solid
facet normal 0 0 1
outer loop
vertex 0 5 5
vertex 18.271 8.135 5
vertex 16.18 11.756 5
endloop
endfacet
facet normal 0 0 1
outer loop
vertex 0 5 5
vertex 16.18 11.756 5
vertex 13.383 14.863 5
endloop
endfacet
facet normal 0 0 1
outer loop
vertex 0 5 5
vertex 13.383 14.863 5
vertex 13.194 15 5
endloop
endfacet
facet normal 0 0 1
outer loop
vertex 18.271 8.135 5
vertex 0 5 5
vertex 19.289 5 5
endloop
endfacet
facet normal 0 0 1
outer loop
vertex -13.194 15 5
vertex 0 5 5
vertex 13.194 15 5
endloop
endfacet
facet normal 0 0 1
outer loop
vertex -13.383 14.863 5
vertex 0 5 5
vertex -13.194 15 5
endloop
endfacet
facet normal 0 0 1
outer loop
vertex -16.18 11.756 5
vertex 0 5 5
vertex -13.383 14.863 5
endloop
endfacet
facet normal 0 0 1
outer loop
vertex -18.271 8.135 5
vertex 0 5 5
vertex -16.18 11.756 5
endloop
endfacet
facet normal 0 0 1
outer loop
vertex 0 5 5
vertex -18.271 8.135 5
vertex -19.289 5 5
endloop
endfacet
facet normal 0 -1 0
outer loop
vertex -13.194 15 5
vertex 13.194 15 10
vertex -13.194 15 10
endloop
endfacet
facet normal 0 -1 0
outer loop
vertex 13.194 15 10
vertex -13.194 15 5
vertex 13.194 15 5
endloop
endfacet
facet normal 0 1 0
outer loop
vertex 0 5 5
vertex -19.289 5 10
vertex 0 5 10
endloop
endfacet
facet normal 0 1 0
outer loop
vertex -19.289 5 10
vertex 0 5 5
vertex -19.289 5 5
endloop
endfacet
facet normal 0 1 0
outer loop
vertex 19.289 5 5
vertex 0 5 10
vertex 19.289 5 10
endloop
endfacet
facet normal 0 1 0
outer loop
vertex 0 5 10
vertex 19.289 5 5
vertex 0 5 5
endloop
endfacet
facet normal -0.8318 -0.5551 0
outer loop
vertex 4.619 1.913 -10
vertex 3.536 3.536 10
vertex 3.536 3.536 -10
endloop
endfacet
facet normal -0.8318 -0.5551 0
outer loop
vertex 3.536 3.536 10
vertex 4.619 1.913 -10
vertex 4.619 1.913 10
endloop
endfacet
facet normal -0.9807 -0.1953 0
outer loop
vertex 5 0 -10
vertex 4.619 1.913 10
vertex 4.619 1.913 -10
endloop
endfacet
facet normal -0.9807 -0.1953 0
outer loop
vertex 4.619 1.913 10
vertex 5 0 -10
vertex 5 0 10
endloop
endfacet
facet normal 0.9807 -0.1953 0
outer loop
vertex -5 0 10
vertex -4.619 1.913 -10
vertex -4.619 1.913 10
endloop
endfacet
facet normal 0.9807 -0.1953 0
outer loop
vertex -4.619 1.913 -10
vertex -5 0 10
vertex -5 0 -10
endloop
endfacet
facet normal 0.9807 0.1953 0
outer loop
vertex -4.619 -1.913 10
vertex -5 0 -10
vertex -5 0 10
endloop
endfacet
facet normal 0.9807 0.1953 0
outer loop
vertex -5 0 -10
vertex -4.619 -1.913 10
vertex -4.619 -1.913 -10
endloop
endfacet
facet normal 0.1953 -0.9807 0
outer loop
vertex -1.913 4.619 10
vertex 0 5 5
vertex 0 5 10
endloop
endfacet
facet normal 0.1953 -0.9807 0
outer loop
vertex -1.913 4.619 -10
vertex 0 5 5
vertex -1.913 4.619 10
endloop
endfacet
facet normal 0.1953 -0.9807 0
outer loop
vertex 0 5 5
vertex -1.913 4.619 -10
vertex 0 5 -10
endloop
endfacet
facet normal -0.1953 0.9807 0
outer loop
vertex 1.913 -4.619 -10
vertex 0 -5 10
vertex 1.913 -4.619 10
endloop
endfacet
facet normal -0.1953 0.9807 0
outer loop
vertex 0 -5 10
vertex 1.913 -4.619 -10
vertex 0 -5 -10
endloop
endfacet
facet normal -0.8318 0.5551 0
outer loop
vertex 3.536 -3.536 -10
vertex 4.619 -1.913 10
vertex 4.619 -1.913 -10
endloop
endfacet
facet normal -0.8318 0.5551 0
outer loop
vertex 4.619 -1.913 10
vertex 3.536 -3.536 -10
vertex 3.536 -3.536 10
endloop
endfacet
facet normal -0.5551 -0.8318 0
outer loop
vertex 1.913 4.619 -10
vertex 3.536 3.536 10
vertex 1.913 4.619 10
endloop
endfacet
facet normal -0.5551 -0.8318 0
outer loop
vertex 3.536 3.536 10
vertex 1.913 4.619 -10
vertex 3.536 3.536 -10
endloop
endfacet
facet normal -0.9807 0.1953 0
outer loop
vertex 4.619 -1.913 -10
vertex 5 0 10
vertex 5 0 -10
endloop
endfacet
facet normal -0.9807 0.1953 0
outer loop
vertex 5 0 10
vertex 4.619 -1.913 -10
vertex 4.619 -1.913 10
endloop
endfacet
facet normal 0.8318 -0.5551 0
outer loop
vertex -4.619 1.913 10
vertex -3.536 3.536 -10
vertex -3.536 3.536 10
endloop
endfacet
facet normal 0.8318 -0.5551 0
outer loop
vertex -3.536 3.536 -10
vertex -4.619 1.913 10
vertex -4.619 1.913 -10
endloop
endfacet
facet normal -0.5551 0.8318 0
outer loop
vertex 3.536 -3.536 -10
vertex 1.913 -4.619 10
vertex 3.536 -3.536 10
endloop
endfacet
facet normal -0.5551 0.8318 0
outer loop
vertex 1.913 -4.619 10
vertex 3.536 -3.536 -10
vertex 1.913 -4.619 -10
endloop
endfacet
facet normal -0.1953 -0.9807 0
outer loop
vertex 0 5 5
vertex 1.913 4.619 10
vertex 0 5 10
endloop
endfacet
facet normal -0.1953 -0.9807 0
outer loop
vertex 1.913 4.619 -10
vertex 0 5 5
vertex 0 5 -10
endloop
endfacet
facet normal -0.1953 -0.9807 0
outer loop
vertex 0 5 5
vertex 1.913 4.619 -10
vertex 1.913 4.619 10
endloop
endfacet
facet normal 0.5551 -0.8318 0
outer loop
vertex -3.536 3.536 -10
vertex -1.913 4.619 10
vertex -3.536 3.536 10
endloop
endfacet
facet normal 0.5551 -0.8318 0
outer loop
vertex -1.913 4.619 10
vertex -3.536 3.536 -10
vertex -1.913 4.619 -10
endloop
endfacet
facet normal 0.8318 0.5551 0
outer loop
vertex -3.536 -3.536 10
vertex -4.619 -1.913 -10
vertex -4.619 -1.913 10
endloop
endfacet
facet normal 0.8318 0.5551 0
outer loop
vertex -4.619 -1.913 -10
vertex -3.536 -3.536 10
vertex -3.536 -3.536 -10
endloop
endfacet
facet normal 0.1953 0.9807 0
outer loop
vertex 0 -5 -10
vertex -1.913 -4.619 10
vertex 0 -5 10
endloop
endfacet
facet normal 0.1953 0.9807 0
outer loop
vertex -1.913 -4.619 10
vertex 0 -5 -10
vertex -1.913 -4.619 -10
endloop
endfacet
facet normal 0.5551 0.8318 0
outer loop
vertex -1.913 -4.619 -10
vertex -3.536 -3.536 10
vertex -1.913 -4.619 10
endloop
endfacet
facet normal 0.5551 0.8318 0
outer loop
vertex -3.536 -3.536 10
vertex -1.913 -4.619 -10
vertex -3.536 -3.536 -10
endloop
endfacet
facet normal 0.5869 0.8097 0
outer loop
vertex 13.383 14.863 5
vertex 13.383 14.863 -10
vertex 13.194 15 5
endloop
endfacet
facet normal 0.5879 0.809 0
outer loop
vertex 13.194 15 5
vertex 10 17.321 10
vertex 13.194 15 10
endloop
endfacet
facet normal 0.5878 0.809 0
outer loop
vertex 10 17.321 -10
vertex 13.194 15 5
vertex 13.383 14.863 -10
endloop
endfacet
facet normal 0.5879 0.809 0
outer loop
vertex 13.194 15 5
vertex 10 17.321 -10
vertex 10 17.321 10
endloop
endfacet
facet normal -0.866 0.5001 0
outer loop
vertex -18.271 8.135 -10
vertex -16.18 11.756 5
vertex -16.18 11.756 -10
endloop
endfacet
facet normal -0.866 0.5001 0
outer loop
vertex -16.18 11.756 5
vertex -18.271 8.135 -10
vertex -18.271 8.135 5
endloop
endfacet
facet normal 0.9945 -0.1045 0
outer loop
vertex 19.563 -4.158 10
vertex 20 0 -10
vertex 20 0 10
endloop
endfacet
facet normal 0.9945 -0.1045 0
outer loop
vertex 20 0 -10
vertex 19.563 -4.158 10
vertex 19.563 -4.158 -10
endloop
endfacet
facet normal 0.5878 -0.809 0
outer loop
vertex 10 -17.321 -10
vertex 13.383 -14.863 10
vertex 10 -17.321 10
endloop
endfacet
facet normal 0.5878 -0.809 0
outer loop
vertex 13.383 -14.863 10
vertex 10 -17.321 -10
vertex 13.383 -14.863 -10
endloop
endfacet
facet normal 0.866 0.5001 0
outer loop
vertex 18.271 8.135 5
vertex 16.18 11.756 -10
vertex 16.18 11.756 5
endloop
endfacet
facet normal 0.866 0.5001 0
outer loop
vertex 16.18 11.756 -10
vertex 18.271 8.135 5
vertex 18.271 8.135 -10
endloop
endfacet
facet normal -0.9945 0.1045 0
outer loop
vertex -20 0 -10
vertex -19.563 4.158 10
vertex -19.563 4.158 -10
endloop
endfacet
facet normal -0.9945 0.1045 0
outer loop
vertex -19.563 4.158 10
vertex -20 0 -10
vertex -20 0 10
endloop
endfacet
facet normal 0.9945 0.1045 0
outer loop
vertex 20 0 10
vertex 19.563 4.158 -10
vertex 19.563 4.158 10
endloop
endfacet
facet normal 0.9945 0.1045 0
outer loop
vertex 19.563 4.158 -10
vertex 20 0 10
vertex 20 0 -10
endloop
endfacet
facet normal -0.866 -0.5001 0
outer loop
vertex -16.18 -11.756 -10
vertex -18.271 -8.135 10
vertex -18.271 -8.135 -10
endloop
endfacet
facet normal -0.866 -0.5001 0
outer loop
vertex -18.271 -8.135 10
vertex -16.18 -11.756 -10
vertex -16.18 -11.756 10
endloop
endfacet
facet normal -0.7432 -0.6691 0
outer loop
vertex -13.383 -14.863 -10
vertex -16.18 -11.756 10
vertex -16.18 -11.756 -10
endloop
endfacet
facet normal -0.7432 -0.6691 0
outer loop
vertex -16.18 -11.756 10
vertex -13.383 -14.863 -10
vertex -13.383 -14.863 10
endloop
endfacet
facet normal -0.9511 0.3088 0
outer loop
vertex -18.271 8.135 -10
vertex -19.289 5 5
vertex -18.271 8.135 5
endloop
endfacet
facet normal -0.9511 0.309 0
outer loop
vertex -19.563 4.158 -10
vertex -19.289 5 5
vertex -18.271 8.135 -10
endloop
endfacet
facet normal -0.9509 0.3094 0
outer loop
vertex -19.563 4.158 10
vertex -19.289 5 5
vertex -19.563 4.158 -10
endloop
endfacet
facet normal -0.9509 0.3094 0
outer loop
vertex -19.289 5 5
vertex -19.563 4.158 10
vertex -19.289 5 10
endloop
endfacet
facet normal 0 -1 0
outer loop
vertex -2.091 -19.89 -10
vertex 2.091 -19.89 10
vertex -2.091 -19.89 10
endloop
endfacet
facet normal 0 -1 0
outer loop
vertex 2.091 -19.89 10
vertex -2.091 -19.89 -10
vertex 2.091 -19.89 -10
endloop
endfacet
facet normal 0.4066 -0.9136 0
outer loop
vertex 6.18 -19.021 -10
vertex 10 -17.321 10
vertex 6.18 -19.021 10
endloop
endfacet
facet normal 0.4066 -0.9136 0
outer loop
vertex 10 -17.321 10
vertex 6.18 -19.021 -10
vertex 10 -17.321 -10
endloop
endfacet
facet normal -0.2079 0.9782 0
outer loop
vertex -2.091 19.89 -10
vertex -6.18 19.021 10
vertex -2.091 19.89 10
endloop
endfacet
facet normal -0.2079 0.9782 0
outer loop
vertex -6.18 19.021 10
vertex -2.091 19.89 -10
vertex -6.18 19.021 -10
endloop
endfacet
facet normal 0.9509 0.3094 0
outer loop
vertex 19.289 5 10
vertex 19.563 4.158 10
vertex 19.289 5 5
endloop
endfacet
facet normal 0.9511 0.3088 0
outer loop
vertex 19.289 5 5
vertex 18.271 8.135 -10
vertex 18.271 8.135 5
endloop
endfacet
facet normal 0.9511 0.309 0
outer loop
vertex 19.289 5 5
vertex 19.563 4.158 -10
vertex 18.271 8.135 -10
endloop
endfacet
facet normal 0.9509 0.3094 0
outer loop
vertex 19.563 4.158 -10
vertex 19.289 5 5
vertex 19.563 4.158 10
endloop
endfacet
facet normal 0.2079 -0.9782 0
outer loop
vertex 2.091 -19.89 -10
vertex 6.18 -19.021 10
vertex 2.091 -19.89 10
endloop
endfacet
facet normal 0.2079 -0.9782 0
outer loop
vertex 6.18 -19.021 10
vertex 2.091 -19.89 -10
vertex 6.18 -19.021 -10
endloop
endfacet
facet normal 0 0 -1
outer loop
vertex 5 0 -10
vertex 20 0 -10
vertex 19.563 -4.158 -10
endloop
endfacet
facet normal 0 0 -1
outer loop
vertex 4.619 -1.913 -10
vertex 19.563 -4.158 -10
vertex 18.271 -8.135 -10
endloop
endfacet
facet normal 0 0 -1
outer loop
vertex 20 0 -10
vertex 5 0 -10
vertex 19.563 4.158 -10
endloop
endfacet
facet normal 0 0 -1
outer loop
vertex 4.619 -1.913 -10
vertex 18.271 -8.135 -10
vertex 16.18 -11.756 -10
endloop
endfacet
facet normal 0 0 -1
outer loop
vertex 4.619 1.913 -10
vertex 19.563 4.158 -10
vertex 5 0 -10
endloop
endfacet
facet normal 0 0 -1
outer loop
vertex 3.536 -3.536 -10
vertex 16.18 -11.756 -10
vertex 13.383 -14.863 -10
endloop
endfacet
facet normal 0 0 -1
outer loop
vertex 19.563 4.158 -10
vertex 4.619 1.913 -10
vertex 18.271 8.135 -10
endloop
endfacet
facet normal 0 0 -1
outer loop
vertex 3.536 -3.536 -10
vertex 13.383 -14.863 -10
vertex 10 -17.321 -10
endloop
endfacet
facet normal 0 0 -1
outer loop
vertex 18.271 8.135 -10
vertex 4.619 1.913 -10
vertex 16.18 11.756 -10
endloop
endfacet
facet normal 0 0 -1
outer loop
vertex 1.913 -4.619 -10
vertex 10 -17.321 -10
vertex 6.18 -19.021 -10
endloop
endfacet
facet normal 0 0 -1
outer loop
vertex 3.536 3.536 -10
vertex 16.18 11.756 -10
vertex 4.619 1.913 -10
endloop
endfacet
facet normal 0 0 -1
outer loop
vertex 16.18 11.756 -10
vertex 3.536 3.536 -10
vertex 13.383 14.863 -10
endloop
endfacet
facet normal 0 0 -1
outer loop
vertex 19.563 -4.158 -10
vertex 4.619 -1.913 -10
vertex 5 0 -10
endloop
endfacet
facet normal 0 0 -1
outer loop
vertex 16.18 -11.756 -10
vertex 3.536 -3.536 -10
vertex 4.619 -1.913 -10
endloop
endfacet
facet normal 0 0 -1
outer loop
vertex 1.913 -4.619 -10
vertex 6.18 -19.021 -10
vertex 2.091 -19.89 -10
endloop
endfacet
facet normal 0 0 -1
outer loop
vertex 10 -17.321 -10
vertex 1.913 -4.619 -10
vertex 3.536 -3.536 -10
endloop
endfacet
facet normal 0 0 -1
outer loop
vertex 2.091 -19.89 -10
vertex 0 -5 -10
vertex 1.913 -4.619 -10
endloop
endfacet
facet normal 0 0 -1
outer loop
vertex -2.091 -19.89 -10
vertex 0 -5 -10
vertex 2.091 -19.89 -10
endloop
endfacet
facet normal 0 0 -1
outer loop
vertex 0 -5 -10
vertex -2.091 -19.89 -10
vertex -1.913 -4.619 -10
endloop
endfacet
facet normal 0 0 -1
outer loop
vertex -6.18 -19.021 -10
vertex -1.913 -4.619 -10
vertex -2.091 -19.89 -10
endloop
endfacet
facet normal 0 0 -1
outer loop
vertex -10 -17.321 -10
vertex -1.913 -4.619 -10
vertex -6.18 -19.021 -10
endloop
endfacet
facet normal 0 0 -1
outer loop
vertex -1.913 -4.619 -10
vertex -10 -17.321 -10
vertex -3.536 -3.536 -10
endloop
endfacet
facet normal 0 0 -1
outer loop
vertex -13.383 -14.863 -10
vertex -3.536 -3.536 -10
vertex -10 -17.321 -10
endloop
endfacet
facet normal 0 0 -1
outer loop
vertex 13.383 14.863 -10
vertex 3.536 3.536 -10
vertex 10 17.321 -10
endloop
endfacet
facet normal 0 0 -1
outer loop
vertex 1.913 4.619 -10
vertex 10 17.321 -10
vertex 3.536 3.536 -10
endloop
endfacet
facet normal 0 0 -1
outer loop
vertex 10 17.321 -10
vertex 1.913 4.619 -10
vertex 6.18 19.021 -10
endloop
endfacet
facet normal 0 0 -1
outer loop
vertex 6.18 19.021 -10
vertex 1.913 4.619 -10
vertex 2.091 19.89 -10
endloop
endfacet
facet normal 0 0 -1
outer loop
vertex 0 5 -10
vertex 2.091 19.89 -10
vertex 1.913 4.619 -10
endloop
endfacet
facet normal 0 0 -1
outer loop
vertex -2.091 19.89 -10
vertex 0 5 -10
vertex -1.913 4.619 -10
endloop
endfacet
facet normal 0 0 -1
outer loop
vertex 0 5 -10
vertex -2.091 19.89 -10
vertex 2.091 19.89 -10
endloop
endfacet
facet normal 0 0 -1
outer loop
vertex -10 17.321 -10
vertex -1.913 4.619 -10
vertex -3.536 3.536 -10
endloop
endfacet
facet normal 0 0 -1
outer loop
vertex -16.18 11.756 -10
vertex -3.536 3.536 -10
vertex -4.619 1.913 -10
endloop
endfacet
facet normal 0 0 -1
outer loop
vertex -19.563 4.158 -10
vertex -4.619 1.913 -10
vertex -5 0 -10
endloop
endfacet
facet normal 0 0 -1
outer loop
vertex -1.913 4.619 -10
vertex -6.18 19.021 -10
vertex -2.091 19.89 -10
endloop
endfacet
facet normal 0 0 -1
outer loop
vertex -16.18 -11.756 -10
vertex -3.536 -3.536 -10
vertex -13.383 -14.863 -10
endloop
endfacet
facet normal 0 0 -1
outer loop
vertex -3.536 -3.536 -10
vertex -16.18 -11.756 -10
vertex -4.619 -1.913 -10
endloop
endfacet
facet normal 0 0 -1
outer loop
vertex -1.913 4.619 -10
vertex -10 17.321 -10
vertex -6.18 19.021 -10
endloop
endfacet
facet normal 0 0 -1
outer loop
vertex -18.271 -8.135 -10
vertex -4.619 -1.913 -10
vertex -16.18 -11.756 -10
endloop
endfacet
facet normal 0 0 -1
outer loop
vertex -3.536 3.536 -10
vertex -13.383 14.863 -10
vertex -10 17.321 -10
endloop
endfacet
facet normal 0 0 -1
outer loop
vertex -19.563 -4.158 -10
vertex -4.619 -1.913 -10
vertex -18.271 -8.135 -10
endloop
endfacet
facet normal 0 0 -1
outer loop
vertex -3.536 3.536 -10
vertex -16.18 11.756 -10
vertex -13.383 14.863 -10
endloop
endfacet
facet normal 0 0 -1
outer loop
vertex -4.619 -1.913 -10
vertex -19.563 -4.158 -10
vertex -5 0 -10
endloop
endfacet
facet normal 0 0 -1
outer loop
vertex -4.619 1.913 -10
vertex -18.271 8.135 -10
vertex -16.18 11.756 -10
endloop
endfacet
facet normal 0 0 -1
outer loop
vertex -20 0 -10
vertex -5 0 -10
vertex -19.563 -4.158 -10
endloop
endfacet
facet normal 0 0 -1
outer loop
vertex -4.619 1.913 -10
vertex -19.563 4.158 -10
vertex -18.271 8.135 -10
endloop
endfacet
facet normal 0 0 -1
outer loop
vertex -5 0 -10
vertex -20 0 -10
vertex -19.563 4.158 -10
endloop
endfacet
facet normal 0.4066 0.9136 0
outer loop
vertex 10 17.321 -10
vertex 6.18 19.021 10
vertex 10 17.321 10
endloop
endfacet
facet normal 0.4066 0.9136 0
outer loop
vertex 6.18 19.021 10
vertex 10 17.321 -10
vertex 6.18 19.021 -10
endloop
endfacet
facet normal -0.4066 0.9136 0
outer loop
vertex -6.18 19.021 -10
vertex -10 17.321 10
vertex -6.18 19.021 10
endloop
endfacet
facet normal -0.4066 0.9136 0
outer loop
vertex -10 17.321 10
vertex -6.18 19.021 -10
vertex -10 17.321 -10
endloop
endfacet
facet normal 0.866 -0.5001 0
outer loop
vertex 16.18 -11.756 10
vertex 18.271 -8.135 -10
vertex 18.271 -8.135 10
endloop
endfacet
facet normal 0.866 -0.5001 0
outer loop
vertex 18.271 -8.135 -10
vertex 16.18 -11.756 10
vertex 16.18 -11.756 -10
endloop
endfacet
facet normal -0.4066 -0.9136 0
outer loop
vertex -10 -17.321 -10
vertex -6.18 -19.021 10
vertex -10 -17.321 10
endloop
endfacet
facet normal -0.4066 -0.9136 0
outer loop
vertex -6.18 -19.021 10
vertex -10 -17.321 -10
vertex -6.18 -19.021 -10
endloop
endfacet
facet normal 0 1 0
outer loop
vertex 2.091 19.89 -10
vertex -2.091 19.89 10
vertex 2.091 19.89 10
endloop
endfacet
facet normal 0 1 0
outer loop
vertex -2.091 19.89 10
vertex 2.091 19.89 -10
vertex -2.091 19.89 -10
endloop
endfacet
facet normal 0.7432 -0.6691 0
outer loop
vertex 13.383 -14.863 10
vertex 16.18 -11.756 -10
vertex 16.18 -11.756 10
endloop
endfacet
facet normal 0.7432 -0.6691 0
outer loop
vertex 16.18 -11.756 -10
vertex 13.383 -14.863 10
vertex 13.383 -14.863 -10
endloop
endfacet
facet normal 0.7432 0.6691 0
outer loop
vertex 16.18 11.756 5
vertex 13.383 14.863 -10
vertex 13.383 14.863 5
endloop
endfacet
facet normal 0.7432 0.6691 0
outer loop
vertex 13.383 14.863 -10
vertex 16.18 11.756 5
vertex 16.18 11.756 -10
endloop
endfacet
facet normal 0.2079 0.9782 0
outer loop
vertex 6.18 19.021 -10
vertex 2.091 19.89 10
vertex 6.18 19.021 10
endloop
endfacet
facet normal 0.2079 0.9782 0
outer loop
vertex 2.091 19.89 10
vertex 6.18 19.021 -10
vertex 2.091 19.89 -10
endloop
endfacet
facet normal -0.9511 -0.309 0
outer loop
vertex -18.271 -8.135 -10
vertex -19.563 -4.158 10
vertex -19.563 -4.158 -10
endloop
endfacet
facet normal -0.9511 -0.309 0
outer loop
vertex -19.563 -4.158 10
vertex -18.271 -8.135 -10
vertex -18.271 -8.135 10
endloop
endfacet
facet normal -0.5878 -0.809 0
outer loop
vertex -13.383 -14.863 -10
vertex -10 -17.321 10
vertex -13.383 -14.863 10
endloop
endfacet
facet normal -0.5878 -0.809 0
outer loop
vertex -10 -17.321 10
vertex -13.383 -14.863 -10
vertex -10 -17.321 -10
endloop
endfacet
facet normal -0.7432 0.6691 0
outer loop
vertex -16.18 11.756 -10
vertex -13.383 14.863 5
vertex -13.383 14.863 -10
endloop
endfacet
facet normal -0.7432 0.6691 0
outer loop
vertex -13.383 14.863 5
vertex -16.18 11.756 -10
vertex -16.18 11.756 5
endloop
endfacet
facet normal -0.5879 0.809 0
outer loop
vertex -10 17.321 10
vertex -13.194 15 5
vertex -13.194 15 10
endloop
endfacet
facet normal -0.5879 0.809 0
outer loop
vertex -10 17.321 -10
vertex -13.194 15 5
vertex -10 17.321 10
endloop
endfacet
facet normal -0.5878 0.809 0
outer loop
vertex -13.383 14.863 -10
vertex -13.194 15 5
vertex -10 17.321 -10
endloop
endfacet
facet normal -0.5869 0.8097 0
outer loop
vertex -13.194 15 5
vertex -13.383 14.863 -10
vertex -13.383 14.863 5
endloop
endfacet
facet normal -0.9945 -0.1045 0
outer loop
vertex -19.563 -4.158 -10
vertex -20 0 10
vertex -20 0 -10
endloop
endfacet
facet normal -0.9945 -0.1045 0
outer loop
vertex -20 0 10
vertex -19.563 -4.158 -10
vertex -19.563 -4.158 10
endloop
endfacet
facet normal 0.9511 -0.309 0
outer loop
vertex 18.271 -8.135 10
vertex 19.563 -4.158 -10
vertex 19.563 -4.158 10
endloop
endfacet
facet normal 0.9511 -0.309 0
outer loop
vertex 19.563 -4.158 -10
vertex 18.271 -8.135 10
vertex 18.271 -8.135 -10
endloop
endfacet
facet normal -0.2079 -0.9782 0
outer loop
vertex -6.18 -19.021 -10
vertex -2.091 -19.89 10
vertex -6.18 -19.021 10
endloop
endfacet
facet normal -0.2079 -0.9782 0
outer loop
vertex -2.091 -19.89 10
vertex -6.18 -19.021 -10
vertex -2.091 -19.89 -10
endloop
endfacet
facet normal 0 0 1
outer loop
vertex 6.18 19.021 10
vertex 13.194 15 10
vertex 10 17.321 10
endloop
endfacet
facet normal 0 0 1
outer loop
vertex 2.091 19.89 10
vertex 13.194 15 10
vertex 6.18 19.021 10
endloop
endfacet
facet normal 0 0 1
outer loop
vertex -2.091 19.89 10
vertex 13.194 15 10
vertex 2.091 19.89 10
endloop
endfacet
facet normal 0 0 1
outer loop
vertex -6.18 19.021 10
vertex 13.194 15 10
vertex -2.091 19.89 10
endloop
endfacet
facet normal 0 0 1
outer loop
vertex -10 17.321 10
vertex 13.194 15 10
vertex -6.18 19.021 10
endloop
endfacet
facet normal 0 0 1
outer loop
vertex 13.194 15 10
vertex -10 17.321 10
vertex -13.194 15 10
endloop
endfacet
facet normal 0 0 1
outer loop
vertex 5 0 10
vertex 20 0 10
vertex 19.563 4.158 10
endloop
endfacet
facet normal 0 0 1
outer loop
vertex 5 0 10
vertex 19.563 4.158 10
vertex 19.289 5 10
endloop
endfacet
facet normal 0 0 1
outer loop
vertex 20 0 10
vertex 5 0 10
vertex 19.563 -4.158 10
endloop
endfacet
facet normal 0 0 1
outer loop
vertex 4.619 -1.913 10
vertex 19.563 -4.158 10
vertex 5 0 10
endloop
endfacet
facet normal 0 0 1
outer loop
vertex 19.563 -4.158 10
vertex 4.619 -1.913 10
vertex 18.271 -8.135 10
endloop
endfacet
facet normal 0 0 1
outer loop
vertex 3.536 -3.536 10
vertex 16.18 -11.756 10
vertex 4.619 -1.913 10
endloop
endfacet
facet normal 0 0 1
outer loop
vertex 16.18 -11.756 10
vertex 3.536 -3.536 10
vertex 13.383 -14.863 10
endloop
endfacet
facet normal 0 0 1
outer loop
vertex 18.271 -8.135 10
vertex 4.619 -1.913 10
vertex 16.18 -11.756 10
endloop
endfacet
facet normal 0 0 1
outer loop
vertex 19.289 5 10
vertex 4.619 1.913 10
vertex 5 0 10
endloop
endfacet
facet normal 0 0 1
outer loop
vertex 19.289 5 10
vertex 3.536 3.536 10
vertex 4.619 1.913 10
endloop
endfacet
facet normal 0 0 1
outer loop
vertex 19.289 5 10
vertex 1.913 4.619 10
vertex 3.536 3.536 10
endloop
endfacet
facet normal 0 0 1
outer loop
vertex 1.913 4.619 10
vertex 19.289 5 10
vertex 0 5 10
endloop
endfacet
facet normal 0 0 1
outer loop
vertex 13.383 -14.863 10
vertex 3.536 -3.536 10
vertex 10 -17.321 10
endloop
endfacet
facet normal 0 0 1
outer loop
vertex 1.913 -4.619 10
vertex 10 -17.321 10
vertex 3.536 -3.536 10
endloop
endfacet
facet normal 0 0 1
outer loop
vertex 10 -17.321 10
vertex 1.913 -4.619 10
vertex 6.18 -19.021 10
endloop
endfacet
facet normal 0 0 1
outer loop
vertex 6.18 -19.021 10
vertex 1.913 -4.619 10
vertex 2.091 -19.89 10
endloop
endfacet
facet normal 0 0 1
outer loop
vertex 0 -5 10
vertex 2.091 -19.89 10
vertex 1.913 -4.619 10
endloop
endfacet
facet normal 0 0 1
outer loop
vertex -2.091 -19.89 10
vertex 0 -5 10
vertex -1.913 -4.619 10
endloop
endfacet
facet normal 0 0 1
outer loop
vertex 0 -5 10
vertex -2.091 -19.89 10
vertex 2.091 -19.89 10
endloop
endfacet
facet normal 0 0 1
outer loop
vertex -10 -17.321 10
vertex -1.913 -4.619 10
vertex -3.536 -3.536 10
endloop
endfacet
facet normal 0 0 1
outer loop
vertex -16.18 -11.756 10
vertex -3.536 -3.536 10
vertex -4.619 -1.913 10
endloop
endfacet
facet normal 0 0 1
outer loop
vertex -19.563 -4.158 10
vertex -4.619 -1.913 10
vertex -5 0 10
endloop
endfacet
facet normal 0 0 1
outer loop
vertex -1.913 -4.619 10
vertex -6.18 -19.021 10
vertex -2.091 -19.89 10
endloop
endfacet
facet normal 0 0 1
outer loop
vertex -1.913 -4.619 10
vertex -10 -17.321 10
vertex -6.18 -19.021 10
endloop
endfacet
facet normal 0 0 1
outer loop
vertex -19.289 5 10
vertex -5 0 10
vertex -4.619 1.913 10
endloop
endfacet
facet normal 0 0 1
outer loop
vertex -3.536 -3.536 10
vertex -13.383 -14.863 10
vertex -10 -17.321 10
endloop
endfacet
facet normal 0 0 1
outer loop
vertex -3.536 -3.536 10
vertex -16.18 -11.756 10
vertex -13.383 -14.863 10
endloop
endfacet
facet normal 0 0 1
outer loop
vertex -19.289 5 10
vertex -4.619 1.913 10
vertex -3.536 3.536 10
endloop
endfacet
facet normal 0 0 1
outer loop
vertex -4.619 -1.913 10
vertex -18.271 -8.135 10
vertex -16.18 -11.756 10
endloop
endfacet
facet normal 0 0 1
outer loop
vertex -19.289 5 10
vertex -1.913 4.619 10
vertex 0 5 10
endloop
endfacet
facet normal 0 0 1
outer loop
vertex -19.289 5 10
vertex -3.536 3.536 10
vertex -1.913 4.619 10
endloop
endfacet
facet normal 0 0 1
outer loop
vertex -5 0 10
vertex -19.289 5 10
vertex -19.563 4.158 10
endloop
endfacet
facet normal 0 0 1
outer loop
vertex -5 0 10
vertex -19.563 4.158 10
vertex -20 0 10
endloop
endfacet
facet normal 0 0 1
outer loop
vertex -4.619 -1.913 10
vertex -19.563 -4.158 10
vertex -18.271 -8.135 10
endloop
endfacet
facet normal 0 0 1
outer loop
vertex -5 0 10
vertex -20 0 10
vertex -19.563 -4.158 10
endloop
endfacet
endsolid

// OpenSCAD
module rambarde()
{
    difference() {     
        cylinder(h = 20, r = 20, center = true);     
      union() {
        translate([0,10,10] ) cube([50, 10, 10], center = true);
 cylinder(h = 50, r = 5, center = true);
      }
    }
}
rambarde();
// Arnaud RCO
